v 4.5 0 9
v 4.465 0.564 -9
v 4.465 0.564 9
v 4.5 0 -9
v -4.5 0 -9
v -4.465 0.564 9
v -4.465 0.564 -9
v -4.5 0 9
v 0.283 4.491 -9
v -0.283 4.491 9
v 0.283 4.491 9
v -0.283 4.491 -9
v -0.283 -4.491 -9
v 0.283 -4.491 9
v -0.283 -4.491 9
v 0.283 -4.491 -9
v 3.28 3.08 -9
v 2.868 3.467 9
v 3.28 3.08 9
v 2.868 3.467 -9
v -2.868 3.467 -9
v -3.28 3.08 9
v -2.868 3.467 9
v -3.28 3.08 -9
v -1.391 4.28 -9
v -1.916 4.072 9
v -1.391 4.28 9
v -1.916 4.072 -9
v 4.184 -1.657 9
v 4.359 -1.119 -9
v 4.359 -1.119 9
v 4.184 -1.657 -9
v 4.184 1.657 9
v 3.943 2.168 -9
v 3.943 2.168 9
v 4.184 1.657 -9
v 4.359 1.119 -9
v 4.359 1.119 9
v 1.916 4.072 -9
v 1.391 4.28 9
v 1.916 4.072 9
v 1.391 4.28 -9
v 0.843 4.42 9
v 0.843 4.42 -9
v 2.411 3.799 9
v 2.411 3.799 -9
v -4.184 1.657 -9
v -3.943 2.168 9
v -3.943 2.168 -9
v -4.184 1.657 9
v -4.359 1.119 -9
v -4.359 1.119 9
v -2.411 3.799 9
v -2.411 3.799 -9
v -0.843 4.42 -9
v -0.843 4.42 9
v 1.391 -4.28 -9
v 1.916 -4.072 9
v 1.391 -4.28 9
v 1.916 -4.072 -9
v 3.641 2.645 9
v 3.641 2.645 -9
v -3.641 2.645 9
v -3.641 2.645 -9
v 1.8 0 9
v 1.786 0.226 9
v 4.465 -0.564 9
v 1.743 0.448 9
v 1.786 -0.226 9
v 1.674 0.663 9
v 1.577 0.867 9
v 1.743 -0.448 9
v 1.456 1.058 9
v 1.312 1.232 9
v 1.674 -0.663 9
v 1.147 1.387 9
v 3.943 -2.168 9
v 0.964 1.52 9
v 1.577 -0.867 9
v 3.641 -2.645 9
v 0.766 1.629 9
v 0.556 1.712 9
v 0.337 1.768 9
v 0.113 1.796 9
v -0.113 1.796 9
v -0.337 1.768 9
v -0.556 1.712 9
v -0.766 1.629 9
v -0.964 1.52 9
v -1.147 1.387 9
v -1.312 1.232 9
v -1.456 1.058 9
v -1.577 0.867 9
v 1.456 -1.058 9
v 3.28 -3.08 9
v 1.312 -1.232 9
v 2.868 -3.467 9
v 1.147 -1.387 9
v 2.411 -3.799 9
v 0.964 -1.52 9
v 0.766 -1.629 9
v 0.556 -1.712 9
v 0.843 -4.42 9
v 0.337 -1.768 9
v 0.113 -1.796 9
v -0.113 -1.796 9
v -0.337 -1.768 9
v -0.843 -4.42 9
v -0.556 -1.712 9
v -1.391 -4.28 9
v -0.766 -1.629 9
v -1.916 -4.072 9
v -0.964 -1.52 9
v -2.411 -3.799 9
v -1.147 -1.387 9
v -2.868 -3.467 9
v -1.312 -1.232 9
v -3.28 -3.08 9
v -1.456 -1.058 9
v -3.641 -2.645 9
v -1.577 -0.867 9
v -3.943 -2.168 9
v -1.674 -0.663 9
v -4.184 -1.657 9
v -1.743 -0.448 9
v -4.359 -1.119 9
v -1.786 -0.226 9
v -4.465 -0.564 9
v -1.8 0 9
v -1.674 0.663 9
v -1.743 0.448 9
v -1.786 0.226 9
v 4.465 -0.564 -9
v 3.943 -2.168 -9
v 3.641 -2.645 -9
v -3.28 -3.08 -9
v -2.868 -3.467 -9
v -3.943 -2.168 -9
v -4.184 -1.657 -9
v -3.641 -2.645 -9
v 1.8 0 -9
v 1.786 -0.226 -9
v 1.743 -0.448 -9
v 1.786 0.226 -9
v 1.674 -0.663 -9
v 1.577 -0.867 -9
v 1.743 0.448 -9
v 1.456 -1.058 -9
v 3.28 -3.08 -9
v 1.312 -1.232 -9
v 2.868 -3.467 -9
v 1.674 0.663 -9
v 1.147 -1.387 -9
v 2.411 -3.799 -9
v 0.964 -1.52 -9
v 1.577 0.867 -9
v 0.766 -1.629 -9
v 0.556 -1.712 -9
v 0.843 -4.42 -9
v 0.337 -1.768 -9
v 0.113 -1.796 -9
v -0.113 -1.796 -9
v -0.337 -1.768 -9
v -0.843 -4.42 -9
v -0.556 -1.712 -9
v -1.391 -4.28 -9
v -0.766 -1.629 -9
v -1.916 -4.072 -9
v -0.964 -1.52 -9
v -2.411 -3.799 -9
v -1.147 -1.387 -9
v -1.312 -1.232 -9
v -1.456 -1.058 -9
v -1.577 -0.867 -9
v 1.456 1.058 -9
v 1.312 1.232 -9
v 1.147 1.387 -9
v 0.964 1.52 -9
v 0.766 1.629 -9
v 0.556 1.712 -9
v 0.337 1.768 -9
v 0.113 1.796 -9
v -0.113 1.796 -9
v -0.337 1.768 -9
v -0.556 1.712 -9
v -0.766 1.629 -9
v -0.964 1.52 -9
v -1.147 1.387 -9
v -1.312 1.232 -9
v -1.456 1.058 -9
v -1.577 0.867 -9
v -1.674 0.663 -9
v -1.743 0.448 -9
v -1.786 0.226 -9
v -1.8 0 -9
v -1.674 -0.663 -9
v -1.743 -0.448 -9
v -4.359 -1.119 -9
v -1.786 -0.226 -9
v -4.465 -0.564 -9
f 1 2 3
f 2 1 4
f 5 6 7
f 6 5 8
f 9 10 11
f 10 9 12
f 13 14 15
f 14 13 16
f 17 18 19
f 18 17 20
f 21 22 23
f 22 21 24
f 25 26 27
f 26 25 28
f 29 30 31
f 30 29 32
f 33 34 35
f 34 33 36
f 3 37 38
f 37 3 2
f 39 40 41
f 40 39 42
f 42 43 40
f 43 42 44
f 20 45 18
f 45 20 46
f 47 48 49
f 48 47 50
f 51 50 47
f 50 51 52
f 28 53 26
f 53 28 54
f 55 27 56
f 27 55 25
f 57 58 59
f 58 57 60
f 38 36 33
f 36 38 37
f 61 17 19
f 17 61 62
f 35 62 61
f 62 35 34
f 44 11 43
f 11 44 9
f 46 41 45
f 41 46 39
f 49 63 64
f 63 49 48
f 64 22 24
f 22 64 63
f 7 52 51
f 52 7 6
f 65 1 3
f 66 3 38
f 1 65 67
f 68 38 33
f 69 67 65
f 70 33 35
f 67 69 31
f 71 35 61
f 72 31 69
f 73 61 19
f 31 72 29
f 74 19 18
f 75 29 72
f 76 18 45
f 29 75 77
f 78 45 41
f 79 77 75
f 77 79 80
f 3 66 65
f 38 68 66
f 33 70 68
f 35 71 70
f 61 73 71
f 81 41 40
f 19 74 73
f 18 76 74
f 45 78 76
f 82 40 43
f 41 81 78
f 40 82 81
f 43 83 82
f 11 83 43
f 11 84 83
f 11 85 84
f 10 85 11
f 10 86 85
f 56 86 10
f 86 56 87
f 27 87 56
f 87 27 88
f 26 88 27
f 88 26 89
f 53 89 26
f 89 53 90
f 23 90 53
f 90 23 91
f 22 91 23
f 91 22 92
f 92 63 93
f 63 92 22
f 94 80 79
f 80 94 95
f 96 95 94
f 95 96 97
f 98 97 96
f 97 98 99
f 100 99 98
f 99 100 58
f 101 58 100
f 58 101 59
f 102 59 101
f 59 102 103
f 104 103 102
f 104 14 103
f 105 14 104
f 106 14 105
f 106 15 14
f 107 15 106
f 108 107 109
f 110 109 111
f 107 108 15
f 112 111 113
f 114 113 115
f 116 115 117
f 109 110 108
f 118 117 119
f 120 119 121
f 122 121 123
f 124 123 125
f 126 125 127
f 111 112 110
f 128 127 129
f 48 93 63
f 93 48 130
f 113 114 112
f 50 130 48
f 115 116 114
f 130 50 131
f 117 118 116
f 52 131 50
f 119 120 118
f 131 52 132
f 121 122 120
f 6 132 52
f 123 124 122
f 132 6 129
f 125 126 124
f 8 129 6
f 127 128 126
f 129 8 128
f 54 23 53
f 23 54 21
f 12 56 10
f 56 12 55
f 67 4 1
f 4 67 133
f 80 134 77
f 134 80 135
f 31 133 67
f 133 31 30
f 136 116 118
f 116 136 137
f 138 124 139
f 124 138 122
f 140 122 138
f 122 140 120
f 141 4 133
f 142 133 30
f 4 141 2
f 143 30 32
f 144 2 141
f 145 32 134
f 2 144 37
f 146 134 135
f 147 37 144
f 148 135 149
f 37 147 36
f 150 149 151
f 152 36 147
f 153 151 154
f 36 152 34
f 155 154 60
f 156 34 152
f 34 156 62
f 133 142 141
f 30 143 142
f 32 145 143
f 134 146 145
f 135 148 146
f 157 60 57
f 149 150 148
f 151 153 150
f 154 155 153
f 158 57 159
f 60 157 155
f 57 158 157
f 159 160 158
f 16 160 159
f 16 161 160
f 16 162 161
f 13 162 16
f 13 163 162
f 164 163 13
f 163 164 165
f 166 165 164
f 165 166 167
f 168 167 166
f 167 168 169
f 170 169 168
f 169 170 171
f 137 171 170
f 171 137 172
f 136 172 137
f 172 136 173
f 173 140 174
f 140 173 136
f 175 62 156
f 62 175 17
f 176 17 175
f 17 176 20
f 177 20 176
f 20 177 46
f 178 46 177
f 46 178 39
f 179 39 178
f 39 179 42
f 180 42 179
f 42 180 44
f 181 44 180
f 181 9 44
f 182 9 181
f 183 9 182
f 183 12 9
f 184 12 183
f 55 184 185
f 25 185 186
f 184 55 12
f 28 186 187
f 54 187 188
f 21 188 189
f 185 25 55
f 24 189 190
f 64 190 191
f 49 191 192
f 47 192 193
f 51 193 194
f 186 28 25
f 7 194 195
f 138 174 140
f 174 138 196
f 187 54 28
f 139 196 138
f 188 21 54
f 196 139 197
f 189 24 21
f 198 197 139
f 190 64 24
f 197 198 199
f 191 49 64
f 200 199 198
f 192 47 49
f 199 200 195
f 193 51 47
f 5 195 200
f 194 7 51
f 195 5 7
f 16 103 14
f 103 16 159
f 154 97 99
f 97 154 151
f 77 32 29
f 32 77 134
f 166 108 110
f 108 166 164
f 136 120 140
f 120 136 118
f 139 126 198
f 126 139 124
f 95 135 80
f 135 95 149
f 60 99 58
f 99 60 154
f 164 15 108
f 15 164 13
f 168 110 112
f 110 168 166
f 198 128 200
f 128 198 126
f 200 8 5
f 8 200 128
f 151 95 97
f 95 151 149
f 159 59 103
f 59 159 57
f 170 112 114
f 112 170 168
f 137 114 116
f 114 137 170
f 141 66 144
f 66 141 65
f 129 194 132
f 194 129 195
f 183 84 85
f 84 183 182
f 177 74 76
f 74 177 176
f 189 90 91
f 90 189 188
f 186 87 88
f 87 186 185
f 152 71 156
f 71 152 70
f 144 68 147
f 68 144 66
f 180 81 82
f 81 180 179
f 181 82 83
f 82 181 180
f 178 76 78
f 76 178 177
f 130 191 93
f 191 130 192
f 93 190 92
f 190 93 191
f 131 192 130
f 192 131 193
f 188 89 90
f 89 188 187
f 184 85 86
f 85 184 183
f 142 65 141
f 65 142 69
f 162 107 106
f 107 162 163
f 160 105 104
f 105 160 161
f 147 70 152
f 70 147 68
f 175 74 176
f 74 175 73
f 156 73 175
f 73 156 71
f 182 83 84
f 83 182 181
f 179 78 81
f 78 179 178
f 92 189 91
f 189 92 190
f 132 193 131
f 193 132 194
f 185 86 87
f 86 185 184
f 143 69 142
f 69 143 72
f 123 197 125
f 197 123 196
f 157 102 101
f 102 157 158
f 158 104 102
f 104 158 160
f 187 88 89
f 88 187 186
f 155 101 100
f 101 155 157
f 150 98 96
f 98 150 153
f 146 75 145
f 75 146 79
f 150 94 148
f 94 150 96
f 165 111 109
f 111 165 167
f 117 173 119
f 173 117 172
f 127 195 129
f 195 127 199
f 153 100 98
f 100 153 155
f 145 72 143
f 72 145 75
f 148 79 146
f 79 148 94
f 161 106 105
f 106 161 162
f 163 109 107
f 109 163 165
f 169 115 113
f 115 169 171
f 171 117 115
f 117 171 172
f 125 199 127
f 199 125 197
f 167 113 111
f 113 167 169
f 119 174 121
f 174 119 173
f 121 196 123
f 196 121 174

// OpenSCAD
$fn = 50;


difference() {
	union() {
		translate(v = [0, 0, -9.0000000000]) {
			cylinder(h = 18, r = 4.5000000000);
		}
	}
	union() {
		#translate(v = [0, 0, -100.0000000000]) {
			cylinder(h = 200, r = 1.8000000000);
		}
	}
}
